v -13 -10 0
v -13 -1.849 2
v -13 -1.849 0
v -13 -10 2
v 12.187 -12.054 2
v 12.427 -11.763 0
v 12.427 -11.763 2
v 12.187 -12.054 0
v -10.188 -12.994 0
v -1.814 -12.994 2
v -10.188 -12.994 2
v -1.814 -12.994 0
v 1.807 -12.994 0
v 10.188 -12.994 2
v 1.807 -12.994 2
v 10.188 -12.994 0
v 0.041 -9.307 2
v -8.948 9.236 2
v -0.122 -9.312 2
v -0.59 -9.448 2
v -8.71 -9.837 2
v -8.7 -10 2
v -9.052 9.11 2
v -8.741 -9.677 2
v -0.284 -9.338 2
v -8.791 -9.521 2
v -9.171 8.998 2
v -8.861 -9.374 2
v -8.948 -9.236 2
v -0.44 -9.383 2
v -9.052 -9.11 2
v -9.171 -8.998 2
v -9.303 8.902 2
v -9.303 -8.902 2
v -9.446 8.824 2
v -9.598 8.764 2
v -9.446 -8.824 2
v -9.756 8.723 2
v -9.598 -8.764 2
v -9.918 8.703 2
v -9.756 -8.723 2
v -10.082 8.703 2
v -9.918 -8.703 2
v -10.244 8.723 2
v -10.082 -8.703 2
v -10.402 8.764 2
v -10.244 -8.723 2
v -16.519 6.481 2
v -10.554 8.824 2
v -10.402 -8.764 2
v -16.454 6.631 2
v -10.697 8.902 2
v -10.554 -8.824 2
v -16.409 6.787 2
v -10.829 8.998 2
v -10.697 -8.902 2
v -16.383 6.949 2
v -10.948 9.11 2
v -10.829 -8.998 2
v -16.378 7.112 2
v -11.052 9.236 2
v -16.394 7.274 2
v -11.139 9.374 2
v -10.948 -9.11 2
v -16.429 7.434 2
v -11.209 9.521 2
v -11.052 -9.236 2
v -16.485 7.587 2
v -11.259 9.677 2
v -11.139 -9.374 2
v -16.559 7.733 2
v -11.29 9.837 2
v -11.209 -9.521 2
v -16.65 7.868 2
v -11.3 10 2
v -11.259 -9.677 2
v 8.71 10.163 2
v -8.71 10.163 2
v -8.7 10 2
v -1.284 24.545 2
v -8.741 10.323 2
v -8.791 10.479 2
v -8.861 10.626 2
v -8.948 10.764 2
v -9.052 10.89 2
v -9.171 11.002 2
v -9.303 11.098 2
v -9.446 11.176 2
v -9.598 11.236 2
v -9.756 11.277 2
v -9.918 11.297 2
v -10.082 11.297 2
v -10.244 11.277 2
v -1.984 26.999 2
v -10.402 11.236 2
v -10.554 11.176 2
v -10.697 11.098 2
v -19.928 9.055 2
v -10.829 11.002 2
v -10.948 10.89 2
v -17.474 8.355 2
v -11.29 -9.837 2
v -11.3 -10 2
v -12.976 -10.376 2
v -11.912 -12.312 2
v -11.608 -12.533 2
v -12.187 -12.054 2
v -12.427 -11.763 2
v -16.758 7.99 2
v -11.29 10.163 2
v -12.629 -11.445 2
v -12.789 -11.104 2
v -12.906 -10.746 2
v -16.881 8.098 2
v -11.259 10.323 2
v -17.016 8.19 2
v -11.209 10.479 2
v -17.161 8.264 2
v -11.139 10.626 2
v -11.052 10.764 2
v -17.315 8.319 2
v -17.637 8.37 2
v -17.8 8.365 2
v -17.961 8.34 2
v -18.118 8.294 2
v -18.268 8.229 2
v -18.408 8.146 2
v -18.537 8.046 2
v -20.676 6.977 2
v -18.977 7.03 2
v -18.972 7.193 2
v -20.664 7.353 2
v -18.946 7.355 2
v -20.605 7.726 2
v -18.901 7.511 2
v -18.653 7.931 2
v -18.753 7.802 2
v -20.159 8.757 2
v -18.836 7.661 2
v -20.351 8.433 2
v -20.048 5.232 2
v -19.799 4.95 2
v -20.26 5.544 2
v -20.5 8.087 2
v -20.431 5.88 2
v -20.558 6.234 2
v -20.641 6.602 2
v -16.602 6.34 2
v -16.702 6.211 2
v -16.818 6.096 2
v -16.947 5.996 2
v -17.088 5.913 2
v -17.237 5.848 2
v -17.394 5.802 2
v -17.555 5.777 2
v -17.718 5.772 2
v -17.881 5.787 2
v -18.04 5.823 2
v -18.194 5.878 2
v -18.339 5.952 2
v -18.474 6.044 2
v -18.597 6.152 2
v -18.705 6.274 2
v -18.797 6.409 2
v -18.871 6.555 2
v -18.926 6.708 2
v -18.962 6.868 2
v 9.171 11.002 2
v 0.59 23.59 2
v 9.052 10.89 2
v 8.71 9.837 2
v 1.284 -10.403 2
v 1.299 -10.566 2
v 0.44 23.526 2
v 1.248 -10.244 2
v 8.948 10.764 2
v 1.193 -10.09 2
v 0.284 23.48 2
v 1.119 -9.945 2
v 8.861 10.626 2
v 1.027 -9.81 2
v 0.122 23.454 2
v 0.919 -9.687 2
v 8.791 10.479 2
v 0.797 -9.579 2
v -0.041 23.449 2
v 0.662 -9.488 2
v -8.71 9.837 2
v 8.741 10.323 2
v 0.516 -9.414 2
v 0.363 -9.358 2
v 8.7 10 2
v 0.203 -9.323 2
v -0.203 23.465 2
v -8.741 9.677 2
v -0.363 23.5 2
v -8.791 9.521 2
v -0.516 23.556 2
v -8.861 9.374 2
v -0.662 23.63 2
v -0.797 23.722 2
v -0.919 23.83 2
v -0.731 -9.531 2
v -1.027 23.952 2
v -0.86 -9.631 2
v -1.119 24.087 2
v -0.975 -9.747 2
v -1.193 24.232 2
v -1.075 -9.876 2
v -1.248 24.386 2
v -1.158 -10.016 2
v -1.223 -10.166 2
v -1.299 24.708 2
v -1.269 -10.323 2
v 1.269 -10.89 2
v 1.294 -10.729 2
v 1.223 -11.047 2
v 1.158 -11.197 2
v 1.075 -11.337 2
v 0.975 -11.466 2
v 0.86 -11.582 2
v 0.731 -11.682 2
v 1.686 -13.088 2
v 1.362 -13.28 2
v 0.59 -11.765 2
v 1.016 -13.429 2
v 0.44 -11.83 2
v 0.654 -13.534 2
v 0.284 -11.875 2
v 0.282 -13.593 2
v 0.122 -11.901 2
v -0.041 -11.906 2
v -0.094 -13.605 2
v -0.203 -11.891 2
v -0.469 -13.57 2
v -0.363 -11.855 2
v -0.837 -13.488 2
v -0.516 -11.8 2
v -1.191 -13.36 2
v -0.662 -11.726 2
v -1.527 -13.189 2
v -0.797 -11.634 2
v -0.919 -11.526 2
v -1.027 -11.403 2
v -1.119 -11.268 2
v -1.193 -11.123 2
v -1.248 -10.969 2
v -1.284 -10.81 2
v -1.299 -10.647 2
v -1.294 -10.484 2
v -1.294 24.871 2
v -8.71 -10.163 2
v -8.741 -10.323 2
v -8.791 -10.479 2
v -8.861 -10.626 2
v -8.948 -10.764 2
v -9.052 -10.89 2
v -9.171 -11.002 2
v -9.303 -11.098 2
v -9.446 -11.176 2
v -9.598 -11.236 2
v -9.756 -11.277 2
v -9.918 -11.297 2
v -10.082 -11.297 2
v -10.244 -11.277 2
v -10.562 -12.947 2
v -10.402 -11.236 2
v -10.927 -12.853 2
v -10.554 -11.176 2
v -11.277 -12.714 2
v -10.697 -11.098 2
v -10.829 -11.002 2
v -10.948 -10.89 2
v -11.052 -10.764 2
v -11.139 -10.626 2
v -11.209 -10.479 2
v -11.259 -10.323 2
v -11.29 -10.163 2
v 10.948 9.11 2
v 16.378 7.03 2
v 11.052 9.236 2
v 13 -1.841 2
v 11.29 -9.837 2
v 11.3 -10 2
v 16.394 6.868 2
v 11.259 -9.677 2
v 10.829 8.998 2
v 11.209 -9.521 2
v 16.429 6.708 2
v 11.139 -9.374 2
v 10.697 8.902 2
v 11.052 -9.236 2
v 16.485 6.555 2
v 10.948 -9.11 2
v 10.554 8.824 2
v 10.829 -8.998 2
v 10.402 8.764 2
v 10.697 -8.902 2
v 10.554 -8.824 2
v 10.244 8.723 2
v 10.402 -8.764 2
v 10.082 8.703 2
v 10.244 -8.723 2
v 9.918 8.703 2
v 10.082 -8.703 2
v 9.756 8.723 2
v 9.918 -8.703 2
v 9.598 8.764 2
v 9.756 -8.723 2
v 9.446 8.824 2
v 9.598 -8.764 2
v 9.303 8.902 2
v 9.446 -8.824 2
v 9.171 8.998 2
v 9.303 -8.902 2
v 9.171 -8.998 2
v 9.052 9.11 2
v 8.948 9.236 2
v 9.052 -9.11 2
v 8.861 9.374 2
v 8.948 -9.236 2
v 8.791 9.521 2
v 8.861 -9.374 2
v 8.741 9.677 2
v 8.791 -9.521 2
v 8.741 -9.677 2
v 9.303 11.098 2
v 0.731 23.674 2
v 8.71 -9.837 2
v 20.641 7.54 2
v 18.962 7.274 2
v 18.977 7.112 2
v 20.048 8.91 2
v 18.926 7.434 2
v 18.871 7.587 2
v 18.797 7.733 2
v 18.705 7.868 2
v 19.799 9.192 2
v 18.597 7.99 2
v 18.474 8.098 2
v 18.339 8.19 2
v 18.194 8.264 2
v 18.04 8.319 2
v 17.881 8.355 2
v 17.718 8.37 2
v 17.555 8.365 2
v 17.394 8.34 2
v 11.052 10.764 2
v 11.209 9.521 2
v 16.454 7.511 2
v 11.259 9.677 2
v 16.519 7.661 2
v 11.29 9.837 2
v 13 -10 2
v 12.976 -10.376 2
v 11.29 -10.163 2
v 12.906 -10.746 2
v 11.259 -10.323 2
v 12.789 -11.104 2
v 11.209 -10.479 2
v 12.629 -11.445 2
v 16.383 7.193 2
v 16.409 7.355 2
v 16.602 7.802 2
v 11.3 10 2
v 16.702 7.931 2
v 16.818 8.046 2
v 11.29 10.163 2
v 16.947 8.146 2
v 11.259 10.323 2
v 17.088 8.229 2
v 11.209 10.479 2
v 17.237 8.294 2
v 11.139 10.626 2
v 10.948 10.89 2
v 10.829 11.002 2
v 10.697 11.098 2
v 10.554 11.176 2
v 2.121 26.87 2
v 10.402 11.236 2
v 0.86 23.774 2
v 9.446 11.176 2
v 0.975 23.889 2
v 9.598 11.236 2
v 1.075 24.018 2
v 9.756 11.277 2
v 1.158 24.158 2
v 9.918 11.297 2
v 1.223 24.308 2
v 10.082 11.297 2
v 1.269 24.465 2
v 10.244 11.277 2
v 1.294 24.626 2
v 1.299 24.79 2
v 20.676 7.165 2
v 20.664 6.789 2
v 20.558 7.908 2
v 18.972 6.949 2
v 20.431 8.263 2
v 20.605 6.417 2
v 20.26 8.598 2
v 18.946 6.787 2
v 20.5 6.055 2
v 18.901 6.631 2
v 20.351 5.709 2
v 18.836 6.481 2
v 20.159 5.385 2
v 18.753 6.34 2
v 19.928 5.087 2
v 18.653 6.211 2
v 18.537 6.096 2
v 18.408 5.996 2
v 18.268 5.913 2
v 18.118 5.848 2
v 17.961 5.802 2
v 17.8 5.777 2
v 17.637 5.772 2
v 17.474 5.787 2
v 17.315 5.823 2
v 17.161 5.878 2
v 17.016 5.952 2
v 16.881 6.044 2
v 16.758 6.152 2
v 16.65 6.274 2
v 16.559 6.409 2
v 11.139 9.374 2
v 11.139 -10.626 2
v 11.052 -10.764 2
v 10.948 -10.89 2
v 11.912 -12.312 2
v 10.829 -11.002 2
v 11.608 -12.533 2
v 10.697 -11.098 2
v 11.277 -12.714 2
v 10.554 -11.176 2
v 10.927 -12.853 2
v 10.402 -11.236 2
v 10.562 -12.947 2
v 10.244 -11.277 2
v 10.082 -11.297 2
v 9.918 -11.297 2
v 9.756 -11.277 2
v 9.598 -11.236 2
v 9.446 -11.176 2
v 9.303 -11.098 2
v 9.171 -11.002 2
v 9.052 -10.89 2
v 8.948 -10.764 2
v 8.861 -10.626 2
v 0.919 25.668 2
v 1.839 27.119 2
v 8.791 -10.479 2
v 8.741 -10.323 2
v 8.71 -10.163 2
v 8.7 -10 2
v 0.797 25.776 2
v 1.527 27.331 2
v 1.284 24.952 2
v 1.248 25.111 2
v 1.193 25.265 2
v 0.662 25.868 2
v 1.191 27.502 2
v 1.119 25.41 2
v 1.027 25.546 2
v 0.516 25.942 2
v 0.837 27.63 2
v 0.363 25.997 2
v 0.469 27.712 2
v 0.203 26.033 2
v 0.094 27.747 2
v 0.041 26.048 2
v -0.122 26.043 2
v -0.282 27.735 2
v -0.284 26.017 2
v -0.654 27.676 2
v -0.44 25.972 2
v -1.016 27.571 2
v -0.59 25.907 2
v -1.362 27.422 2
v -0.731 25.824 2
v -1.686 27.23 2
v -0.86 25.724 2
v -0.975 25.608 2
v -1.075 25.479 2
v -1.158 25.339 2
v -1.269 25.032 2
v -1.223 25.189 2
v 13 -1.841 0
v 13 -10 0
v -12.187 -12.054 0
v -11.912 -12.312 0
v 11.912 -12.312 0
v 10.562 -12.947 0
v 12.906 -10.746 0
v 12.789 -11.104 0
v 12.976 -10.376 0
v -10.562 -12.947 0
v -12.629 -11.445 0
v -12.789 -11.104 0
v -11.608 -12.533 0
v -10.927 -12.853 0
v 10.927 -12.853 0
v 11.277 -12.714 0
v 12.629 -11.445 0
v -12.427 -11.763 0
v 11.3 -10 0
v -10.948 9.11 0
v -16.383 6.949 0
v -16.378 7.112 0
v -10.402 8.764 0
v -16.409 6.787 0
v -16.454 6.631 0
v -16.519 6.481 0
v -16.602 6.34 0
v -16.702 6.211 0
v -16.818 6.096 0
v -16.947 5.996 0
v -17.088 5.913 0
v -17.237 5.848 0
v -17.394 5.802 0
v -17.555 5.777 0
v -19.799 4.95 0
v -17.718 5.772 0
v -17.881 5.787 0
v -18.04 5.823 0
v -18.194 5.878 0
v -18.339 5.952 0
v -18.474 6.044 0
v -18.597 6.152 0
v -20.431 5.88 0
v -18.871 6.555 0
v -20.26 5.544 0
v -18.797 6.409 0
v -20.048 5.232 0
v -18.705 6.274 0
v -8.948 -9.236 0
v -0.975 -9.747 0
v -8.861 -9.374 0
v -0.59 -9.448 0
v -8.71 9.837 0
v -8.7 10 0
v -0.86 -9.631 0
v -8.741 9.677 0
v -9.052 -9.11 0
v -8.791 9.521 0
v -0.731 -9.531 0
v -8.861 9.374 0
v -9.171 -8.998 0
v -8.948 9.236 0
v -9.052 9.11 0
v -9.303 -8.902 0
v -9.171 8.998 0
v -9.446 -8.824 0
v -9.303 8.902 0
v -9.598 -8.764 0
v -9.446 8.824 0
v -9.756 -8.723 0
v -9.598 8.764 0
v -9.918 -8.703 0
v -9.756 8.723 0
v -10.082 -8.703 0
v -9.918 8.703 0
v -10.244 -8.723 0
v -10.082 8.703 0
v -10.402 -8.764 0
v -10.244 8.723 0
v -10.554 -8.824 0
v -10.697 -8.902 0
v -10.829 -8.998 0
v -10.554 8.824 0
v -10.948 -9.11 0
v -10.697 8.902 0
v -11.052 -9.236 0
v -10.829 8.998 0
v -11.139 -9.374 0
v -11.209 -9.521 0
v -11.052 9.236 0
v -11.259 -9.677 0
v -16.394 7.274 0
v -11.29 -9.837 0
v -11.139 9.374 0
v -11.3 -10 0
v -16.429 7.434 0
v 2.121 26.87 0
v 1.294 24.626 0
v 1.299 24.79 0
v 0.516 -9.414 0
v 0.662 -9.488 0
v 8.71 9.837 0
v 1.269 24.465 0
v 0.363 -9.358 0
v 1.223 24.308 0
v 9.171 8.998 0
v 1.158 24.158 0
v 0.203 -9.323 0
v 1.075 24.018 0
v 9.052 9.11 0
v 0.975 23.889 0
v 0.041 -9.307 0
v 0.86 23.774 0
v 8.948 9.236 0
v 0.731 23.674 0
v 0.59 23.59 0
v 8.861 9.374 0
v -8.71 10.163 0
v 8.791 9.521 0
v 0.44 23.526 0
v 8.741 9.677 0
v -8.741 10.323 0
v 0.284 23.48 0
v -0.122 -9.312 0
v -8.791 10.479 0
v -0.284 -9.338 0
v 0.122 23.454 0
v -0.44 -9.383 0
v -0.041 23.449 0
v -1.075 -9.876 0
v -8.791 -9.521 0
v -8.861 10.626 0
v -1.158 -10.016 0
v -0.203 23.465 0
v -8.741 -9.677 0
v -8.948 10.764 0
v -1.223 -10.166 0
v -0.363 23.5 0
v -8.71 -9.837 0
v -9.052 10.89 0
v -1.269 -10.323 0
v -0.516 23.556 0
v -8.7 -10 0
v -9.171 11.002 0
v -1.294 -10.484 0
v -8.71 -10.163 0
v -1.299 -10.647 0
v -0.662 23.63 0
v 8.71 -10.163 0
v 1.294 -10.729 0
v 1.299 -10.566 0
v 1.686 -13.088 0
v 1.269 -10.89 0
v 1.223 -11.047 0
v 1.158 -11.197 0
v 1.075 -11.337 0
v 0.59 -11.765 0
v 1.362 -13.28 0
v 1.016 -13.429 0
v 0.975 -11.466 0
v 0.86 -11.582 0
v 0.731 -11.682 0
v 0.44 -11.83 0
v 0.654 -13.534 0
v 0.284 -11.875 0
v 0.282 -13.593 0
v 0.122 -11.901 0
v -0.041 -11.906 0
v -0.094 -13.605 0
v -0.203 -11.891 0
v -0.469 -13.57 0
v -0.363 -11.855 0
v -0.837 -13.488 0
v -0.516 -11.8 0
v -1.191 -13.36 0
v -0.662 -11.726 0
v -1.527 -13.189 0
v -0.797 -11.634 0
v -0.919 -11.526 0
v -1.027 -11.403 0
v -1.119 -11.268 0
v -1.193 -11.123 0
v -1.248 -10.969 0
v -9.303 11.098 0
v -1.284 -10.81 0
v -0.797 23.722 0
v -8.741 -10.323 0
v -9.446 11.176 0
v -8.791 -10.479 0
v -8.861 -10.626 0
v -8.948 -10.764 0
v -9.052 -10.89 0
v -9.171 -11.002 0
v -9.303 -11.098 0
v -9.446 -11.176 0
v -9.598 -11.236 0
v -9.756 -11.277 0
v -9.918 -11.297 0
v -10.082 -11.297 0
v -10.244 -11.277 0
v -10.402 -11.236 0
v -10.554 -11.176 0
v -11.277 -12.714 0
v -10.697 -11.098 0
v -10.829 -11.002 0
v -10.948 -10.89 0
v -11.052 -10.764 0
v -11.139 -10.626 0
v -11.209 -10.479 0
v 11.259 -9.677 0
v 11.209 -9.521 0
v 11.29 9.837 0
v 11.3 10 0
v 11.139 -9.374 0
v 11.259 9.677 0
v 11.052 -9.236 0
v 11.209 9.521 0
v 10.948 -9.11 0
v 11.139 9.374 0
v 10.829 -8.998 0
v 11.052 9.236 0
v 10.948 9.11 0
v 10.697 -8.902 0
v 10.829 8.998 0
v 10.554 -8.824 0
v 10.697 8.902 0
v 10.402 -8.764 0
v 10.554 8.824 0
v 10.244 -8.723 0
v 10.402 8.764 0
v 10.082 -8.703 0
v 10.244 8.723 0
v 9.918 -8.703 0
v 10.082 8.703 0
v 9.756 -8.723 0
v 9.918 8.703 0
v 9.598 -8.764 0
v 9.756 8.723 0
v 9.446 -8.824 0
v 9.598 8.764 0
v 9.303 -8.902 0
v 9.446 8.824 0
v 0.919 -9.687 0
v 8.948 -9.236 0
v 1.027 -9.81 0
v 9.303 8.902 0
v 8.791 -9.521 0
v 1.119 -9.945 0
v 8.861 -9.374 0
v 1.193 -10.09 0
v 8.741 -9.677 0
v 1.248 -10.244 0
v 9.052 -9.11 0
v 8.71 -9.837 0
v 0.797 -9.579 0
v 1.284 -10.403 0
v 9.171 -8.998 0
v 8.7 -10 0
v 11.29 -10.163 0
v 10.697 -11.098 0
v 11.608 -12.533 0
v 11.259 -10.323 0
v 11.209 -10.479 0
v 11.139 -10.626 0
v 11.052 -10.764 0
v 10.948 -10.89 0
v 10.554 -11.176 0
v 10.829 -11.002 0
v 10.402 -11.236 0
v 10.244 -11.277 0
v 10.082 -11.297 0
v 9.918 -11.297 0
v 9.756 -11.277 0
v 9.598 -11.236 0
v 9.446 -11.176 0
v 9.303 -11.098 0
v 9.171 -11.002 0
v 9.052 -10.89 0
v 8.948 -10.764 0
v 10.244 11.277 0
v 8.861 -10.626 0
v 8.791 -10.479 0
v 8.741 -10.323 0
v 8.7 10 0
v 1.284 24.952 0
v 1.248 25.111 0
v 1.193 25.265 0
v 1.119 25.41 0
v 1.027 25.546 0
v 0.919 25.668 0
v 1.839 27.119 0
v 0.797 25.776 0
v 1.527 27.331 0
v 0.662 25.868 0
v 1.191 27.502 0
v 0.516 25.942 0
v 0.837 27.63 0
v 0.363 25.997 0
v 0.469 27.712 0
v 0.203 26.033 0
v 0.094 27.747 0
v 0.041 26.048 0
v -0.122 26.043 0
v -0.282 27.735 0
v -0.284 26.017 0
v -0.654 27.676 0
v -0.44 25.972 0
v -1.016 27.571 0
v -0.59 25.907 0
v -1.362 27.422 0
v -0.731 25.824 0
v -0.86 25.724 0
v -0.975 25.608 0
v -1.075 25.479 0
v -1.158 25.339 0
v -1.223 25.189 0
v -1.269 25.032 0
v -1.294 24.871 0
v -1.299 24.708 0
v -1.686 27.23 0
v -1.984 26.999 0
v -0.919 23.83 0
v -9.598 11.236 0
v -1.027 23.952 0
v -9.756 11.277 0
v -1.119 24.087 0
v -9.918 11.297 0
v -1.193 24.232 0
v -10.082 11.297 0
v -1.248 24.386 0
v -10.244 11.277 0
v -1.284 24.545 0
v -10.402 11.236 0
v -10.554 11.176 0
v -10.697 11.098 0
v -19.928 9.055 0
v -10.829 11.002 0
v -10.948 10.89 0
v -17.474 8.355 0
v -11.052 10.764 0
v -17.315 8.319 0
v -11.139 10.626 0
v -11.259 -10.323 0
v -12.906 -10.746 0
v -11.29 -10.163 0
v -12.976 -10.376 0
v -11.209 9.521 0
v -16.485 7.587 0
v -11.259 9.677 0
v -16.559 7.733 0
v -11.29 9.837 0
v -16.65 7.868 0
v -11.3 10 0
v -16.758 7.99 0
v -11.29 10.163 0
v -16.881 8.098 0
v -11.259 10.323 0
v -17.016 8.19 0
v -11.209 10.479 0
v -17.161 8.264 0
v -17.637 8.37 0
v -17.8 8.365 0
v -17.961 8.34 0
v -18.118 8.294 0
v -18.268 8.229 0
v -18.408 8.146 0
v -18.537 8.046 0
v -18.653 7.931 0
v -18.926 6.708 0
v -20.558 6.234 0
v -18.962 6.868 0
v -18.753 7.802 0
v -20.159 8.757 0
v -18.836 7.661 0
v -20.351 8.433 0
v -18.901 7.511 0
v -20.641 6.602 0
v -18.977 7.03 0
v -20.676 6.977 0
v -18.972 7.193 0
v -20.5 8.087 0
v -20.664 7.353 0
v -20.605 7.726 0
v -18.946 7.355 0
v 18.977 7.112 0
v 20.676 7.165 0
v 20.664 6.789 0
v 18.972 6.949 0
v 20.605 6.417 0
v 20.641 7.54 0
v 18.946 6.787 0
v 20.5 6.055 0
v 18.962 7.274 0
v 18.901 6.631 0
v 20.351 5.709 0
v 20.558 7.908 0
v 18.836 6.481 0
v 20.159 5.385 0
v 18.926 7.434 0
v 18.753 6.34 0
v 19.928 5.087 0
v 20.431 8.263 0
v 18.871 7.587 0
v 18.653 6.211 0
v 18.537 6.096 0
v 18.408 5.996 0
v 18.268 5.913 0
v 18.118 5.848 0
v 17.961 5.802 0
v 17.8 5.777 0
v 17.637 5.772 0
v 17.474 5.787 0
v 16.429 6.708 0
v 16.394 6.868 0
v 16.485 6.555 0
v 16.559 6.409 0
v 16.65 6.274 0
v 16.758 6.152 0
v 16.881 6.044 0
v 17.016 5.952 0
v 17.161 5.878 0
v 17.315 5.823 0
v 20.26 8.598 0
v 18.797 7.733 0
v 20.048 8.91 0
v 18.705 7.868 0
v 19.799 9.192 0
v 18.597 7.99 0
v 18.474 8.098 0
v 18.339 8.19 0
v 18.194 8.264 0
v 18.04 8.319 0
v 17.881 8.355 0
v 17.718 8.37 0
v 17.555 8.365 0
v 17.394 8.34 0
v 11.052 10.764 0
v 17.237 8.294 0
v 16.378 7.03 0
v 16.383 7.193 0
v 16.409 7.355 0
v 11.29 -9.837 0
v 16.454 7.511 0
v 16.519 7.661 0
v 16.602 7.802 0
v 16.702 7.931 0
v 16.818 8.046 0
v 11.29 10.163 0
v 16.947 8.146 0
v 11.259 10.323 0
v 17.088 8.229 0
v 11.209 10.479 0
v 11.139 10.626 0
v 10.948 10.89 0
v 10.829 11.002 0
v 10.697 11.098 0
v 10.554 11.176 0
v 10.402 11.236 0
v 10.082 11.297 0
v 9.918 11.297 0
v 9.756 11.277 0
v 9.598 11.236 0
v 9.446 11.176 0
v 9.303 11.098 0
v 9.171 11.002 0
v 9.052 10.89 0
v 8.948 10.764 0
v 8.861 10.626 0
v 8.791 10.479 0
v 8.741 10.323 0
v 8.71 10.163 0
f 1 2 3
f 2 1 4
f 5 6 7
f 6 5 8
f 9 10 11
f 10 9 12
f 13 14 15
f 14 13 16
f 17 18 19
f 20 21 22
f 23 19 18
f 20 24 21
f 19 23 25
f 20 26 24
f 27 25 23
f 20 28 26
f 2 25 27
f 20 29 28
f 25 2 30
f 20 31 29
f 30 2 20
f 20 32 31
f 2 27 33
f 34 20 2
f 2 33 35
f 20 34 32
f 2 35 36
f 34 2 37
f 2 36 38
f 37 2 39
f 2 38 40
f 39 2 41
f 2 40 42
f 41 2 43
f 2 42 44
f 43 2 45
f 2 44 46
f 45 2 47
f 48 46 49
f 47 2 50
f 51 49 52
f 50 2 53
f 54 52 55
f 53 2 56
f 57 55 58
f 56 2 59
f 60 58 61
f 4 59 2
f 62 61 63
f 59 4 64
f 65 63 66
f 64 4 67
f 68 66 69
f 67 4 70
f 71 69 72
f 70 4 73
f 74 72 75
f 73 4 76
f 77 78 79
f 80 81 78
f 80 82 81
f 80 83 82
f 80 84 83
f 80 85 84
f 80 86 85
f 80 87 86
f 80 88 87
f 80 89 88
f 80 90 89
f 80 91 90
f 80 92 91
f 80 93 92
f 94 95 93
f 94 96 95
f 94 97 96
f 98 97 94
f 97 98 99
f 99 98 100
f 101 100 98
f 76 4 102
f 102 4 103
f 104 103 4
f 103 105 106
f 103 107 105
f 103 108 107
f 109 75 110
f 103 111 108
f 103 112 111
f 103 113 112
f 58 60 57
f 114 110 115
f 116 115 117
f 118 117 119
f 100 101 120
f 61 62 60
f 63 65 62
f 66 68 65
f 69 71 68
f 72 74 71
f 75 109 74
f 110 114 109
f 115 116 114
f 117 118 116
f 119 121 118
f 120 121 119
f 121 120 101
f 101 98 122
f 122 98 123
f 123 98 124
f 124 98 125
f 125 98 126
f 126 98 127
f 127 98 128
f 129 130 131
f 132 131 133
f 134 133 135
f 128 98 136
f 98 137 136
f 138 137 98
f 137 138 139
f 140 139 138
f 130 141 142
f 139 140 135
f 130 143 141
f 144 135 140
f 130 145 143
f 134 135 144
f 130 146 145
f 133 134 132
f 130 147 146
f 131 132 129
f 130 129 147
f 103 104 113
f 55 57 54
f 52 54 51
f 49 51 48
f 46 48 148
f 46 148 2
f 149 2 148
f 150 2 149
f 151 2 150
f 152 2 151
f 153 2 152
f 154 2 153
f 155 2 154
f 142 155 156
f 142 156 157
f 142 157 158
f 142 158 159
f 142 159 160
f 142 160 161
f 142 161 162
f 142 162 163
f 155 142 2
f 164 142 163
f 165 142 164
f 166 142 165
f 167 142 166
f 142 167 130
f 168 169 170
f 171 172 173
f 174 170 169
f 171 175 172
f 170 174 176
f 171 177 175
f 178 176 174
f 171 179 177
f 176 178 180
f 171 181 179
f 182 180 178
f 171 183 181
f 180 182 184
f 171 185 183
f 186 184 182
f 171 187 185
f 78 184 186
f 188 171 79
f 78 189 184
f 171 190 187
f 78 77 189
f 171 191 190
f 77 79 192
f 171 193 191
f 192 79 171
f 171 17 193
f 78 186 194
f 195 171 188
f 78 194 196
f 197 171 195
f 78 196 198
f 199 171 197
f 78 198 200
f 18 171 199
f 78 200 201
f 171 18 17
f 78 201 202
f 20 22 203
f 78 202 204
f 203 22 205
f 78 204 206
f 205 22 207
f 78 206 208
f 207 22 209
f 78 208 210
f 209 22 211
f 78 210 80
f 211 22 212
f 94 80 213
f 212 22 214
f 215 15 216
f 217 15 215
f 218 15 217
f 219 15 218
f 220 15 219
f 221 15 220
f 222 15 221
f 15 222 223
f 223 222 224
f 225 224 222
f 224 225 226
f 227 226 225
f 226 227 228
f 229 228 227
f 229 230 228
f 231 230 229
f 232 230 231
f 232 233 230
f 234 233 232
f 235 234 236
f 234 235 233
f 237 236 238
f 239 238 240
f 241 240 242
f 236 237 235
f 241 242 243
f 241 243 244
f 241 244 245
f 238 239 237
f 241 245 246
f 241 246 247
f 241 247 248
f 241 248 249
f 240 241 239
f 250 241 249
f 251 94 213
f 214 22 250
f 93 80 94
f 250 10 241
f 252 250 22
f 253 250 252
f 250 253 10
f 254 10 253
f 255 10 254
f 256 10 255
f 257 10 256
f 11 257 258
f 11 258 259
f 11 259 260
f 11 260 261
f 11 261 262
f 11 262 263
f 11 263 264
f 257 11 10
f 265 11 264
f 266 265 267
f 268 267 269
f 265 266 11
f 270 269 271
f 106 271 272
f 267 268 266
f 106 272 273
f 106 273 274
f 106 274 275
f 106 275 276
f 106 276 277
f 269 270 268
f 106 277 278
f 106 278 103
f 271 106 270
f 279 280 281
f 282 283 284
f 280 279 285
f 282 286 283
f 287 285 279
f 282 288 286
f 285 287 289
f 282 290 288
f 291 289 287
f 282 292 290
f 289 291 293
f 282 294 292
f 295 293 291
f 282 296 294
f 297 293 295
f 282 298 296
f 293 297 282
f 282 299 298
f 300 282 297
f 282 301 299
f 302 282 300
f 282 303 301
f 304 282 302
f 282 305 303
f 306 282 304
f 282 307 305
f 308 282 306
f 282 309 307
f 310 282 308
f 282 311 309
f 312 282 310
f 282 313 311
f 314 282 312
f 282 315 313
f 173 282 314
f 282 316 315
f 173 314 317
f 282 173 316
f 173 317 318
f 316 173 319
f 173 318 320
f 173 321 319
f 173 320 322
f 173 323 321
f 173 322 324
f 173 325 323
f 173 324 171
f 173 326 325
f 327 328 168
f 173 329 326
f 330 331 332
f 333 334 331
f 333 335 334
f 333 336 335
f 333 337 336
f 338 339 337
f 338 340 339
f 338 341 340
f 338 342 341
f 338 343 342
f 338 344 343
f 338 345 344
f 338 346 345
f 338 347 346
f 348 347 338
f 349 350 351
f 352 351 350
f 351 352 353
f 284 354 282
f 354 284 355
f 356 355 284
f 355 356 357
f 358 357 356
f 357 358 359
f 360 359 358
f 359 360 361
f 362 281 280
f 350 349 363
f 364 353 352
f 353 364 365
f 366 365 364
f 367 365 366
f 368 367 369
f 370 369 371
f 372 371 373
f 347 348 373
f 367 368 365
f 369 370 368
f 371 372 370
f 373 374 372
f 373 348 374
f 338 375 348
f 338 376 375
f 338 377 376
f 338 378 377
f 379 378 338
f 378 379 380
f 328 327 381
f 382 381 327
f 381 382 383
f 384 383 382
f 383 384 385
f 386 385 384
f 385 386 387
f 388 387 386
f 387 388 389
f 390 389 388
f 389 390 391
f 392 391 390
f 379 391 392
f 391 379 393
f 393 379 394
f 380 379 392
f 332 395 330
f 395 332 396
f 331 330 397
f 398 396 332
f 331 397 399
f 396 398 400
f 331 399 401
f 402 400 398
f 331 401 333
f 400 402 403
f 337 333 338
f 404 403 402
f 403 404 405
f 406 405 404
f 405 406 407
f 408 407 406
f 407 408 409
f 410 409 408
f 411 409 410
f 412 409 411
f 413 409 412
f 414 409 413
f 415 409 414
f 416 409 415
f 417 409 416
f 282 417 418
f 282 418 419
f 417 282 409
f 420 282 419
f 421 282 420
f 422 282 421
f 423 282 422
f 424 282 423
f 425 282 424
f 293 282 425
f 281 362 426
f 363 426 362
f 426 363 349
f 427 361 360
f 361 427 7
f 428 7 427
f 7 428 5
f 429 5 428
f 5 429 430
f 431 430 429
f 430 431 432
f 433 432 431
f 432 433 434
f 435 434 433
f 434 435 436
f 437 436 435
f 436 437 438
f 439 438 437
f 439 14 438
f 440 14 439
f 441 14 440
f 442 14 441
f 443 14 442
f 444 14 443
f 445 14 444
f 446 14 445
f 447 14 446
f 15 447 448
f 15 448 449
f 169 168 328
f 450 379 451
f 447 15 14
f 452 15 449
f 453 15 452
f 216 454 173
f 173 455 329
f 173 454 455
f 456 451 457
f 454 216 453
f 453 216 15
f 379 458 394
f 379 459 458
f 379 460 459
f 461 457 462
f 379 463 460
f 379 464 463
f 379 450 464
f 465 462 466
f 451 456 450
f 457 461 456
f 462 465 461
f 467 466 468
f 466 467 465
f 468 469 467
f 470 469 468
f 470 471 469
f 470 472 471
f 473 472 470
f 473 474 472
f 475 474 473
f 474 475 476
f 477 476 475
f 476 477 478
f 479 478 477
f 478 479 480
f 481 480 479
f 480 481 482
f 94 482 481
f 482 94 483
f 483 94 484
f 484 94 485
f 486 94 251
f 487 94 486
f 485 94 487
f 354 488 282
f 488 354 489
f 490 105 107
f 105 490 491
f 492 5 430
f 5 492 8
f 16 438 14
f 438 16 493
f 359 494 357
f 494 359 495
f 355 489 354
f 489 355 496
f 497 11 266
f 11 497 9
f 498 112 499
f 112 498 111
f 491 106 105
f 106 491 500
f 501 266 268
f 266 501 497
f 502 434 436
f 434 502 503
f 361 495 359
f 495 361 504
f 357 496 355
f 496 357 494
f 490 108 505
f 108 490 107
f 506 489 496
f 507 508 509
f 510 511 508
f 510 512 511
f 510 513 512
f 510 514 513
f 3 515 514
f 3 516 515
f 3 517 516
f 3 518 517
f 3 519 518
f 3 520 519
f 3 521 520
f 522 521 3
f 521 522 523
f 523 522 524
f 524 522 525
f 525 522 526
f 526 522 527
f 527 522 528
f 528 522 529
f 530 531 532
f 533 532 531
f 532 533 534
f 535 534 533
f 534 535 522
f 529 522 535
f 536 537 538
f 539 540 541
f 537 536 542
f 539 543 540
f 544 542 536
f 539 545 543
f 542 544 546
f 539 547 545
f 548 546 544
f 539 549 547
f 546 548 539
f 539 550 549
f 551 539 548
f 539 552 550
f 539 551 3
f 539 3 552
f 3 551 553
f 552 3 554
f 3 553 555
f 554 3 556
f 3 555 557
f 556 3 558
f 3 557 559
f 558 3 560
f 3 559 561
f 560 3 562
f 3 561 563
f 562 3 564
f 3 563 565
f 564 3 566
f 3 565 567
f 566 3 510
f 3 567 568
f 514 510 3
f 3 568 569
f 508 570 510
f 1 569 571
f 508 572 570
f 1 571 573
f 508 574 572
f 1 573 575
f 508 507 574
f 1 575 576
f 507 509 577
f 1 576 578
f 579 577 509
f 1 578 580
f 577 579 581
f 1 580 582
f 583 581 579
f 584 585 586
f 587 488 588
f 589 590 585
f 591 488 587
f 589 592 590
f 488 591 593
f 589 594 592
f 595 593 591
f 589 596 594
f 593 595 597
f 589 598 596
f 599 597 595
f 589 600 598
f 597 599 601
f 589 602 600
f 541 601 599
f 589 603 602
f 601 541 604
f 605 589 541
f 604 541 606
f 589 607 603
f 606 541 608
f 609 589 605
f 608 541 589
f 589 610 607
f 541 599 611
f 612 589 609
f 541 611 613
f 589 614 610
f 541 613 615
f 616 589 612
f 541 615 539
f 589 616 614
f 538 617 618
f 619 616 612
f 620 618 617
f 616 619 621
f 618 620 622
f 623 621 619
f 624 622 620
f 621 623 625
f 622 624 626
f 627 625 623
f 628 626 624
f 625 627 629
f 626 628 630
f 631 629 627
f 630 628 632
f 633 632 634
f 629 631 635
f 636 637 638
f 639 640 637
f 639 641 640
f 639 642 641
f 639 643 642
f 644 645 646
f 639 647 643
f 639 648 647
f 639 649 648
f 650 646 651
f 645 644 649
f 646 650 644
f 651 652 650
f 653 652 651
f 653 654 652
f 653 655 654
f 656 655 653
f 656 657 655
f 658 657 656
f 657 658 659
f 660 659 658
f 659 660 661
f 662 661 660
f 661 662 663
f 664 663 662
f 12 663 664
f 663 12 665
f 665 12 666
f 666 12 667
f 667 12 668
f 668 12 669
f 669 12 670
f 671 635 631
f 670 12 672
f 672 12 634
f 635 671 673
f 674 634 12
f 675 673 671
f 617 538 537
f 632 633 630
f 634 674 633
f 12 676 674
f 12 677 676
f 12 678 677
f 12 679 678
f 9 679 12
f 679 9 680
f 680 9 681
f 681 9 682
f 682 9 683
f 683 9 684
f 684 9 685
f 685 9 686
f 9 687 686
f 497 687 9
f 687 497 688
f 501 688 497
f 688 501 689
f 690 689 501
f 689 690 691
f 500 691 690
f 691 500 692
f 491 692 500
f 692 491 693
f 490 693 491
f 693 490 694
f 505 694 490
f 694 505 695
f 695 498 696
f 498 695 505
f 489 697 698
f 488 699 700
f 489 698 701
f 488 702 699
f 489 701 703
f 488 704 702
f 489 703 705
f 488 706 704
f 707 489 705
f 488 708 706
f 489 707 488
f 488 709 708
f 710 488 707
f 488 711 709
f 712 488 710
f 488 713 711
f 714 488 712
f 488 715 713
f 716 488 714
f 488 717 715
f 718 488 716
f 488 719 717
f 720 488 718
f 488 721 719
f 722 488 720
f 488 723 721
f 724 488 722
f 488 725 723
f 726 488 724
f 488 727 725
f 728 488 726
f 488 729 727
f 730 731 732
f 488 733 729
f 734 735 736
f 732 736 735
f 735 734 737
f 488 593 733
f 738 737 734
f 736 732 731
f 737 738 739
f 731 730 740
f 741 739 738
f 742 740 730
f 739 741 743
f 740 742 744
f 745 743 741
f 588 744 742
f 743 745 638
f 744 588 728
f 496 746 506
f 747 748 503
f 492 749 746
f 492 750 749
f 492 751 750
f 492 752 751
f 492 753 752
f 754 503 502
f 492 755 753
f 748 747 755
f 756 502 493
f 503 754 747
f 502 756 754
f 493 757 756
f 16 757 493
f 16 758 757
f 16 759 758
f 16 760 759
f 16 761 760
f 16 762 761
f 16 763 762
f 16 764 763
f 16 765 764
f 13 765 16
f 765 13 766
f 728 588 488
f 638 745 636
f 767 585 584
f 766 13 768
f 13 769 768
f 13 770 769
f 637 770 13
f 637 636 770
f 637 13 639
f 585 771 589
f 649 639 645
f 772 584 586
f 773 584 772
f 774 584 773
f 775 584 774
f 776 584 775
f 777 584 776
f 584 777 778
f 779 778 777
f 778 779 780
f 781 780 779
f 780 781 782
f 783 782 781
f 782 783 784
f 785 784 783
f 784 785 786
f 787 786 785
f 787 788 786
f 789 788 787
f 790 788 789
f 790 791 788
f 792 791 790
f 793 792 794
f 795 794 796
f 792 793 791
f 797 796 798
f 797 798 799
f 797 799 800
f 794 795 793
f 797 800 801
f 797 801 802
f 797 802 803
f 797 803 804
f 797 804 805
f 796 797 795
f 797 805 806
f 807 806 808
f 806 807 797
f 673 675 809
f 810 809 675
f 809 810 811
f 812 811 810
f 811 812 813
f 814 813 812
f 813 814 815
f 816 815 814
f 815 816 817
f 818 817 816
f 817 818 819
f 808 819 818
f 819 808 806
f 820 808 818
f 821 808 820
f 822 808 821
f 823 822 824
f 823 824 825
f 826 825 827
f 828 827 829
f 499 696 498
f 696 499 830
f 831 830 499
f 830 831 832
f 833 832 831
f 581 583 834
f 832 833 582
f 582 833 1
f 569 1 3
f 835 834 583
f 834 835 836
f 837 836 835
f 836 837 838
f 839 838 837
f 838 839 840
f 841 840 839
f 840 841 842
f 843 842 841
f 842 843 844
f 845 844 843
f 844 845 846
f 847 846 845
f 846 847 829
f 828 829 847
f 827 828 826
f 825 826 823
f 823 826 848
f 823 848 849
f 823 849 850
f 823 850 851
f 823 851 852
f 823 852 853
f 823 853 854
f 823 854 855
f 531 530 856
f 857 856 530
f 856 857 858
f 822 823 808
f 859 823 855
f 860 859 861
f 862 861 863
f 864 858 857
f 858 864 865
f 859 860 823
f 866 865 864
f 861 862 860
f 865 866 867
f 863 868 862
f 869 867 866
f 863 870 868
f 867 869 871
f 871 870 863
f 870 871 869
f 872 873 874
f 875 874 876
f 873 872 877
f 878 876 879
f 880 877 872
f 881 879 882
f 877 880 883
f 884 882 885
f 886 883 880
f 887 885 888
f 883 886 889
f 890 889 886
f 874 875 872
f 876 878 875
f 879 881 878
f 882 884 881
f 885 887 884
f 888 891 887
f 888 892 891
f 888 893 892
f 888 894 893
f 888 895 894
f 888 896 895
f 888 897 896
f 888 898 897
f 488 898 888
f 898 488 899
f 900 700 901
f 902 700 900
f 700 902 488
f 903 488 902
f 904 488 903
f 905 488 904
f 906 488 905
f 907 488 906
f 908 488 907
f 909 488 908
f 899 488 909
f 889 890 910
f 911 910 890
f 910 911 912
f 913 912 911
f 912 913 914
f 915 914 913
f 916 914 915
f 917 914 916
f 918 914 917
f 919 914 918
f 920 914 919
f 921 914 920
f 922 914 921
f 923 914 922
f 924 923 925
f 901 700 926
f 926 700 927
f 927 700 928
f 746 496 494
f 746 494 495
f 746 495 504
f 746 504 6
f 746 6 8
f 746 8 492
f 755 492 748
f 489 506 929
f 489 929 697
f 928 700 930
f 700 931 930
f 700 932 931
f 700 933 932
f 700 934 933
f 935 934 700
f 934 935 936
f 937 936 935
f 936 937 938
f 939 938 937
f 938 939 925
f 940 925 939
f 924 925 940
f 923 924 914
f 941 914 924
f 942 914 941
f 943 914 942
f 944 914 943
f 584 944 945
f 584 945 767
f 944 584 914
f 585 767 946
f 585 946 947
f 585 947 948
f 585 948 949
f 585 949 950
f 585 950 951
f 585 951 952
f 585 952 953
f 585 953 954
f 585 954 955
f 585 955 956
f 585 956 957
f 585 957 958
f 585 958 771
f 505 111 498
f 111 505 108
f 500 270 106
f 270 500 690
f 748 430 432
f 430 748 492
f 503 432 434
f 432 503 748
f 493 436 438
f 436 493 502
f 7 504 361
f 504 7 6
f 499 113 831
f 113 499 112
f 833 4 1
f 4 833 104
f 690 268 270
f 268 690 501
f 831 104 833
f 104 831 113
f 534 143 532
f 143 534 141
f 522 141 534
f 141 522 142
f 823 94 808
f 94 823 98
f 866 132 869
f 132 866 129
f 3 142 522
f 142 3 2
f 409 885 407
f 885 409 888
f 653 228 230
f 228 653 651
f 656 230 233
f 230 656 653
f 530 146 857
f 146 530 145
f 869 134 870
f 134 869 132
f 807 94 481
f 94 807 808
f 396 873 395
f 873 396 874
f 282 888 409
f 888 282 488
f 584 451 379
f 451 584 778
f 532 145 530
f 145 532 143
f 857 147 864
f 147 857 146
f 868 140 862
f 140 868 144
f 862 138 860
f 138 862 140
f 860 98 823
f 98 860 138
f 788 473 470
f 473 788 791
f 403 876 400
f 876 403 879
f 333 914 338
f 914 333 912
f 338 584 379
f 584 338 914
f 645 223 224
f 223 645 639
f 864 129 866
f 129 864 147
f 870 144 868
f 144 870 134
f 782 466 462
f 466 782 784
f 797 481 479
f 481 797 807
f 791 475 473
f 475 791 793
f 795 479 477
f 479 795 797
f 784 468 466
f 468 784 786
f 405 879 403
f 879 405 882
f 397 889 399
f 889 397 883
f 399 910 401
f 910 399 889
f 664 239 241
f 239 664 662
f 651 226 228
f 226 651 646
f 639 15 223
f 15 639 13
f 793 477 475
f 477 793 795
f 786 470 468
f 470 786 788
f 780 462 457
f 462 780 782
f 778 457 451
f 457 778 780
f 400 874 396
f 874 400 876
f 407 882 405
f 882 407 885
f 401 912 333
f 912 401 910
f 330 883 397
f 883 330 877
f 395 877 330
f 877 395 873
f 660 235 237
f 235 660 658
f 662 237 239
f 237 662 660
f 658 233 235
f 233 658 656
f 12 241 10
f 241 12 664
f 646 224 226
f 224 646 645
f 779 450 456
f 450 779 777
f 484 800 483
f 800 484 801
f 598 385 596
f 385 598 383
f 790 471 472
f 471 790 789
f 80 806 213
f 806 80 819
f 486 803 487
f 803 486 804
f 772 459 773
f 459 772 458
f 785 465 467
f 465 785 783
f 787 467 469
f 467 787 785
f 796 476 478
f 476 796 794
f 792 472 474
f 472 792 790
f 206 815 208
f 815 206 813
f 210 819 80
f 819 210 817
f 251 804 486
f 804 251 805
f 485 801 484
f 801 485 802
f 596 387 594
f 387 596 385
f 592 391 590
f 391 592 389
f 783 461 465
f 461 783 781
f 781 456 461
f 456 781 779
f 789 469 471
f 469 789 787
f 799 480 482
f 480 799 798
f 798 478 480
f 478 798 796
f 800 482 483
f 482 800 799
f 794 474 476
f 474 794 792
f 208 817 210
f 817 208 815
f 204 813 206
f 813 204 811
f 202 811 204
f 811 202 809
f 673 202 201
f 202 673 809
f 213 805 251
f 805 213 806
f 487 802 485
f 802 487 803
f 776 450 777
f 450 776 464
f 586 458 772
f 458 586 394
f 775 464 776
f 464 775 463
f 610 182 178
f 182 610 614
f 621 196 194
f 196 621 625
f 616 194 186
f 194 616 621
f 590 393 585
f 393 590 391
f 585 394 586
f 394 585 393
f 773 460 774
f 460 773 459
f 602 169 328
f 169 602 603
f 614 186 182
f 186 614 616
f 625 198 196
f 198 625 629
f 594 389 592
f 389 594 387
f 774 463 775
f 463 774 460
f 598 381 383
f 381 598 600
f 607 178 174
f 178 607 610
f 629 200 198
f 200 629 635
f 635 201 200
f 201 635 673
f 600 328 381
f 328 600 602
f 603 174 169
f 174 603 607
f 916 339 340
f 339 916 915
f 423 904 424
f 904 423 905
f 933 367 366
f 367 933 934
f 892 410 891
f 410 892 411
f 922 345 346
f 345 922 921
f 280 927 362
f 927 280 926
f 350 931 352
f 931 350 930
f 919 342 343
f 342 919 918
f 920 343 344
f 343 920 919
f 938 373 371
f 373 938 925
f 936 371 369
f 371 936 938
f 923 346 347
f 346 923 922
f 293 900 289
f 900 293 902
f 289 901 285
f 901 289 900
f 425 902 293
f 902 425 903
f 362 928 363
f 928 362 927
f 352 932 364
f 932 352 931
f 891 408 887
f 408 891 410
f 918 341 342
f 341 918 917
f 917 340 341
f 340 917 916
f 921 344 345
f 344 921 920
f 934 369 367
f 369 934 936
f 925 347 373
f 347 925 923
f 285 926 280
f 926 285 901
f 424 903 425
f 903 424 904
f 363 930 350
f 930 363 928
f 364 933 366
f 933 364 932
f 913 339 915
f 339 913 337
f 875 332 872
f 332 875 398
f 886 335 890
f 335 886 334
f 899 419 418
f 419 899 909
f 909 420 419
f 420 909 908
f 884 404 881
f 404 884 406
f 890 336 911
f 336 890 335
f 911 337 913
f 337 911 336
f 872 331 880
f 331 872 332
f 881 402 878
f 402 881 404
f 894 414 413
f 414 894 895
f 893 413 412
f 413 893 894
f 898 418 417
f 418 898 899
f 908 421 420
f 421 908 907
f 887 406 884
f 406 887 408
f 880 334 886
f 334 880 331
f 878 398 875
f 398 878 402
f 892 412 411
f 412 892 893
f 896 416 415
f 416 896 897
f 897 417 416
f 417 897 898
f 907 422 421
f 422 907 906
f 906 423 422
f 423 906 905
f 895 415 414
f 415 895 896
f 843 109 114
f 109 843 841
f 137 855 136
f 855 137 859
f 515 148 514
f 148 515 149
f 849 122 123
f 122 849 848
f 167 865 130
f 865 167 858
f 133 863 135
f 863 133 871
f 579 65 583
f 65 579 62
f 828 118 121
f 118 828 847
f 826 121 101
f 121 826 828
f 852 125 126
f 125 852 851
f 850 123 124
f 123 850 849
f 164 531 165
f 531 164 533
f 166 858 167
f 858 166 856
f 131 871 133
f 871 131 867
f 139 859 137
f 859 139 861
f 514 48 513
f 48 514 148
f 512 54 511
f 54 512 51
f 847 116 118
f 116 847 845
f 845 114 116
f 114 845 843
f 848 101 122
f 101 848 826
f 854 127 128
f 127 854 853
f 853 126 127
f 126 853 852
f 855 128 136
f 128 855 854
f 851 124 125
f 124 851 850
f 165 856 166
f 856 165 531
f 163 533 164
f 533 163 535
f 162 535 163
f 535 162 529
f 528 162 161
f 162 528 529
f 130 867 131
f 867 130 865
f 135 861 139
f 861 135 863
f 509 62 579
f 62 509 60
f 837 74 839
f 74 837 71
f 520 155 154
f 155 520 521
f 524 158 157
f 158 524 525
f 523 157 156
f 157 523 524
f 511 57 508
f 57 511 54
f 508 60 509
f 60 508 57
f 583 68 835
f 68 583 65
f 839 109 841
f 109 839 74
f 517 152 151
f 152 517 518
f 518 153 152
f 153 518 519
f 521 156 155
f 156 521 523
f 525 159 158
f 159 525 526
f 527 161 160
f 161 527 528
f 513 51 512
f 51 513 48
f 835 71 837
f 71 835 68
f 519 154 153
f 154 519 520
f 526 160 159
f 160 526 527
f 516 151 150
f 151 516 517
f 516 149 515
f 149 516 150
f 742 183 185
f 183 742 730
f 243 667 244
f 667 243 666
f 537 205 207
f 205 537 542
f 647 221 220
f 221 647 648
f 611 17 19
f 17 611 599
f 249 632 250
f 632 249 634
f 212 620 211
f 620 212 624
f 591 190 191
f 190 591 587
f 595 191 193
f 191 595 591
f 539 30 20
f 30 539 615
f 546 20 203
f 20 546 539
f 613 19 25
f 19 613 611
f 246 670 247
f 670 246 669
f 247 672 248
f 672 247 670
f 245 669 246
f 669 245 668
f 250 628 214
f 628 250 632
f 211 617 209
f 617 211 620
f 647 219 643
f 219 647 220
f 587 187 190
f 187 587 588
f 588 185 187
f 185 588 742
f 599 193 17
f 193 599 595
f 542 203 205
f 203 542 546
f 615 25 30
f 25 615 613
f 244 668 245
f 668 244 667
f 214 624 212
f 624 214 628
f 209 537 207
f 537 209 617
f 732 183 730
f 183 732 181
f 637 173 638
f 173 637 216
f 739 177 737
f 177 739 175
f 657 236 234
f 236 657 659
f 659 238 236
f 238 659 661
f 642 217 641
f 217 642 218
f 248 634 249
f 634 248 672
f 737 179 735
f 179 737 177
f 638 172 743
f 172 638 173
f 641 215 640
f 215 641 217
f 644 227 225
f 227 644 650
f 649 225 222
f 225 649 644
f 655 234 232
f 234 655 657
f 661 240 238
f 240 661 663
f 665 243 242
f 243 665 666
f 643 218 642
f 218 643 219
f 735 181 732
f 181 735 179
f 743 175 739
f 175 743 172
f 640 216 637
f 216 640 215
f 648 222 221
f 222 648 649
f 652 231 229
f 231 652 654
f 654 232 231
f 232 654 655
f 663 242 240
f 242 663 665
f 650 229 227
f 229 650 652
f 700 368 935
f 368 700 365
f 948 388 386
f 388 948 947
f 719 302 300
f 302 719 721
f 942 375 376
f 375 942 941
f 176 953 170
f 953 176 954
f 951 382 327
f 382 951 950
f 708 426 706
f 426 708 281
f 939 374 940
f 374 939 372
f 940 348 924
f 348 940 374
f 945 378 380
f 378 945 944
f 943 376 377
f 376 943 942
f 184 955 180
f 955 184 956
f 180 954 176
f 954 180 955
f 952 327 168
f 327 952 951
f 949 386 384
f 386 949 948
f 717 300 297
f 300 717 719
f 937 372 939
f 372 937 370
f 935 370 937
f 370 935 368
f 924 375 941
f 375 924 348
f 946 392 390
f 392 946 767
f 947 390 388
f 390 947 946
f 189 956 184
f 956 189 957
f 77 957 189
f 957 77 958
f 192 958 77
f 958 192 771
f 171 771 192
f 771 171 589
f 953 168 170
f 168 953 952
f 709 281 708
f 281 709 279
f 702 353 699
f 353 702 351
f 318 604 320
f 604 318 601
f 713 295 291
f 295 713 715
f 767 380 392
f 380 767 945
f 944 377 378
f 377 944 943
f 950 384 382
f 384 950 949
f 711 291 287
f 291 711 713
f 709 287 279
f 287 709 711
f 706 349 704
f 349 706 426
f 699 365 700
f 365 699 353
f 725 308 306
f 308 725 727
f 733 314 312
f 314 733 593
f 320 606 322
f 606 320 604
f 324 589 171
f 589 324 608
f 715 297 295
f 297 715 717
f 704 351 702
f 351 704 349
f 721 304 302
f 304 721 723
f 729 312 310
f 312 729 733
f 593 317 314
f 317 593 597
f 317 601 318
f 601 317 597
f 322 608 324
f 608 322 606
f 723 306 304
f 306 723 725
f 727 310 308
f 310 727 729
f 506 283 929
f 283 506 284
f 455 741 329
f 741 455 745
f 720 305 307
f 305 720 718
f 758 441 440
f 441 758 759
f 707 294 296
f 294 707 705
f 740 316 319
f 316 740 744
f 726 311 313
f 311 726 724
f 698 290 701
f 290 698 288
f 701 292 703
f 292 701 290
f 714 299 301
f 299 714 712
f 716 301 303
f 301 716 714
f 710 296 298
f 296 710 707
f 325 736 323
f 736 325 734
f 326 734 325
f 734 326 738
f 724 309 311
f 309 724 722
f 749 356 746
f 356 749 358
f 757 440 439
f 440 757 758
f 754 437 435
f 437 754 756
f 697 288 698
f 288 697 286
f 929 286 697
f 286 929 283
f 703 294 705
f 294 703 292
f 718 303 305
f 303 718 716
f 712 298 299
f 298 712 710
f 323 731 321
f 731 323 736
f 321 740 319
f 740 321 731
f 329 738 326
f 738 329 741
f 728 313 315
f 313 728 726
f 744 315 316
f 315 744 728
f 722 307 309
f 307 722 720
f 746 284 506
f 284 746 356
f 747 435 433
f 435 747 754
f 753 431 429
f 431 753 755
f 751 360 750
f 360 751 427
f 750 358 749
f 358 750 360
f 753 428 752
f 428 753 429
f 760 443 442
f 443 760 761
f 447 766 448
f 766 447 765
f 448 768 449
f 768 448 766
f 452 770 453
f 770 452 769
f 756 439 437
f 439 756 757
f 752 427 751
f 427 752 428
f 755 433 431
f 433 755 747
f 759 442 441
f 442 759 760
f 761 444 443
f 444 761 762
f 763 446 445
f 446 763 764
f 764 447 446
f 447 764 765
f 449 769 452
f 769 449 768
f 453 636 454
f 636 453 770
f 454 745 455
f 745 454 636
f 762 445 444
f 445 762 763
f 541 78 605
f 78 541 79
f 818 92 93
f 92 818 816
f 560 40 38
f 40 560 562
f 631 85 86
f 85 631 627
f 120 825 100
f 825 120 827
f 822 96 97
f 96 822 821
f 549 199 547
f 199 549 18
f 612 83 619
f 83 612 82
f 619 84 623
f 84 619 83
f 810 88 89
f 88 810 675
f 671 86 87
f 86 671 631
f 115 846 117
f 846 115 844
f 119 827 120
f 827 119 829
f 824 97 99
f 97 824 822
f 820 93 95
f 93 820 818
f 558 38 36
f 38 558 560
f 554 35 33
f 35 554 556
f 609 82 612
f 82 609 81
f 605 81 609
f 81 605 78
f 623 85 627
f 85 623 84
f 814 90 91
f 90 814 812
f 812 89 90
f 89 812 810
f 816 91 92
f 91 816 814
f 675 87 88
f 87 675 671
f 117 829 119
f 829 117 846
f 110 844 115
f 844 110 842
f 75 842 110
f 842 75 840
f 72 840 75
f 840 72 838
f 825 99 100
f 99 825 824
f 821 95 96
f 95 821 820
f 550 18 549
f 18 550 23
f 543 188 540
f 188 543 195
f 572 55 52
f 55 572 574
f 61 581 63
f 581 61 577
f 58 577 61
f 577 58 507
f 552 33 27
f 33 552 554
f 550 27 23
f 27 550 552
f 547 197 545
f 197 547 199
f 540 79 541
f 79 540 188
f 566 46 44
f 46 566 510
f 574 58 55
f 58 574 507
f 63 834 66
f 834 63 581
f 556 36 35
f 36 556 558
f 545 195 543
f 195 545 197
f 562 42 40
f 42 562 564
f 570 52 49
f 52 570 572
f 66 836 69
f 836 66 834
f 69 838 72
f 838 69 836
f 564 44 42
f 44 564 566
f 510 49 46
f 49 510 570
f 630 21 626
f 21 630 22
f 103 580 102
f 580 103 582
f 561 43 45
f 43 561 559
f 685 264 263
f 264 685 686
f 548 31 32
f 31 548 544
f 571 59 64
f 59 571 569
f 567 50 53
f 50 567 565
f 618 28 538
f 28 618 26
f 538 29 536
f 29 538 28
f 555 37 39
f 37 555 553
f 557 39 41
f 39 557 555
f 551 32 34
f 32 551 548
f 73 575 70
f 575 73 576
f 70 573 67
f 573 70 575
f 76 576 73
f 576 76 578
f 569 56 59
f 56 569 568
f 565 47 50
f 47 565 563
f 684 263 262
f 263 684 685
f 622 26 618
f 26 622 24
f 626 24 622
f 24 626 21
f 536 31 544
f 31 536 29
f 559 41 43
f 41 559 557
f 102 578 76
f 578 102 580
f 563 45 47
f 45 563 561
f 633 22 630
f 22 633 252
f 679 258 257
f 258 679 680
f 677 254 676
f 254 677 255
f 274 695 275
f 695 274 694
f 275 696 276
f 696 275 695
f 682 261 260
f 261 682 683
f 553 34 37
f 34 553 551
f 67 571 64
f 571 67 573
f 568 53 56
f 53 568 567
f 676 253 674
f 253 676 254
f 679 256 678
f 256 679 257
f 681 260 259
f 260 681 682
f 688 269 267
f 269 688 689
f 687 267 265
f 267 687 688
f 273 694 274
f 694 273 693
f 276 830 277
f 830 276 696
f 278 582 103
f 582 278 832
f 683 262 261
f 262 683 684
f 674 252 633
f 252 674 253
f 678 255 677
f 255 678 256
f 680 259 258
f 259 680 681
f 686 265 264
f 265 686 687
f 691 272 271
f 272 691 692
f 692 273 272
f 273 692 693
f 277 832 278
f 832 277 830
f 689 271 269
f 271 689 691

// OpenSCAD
$fn=50;

        difference(){
            union(){
                translate([-13,-13,0]) rcube([26, 26, 2], [3, 3, 3, 3]);
                rotate([0,0,45]) translate([5,5,0]) translate([-15.5,-15.5,0]) rcube([31, 31, 2], [3, 3, 3, 3]);
            }
            
            translate([10,10,0]) cylinder(h=6,d=2.6);
            translate([10,-10,0]) cylinder(h=6,d=2.6);
            translate([-10,10,0]) cylinder(h=6,d=2.6);
            translate([-10,-10,0]) cylinder(h=6,d=2.6);
            rotate([0,0,45]) translate([5,5,0]) union(){
                translate([12.5,12.5,0]) cylinder(h=6,d=2.6);
                translate([12.5,-12.5,0]) cylinder(h=6,d=2.6);
                translate([-12.5,12.5,0]) cylinder(h=6,d=2.6);
                translate([-12.5,-12.5,0]) cylinder(h=6,d=2.6);
            }
            //cylinder(d=15, h=5);
            //translate([0,22,0]) cylinder(d=15, h=5);
            
        }
        
module rcube(size, radius) {
    hull() {
        // BL
        if(radius[0] == 0) cube([1, 1, size[2]]);
        else translate([radius[0], radius[0]]) cylinder(r = radius[0], h = size[2]);
        // BR
        if(radius[1] == 0) translate([size[0] - 1, 0]) cube([1, 1, size[2]]);
        else translate([size[0] - radius[1], radius[1]]) cylinder(r = radius[1], h = size[2]);
        // TR
        if(radius[2] == 0) translate([size[0] - 1, size[1] - 1])cube([1, 1, size[2]]);
        else translate([size[0] - radius[2], size[1] - radius[2]]) cylinder(r = radius[2], h = size[2]);
        // TL
        if(radius[3] == 0) translate([0, size[1] - 1]) cube([1, 1, size[2]]);
        else translate([radius[3], size[1] - radius[3]]) cylinder(r = radius[3], h = size[2]);
    }
}
